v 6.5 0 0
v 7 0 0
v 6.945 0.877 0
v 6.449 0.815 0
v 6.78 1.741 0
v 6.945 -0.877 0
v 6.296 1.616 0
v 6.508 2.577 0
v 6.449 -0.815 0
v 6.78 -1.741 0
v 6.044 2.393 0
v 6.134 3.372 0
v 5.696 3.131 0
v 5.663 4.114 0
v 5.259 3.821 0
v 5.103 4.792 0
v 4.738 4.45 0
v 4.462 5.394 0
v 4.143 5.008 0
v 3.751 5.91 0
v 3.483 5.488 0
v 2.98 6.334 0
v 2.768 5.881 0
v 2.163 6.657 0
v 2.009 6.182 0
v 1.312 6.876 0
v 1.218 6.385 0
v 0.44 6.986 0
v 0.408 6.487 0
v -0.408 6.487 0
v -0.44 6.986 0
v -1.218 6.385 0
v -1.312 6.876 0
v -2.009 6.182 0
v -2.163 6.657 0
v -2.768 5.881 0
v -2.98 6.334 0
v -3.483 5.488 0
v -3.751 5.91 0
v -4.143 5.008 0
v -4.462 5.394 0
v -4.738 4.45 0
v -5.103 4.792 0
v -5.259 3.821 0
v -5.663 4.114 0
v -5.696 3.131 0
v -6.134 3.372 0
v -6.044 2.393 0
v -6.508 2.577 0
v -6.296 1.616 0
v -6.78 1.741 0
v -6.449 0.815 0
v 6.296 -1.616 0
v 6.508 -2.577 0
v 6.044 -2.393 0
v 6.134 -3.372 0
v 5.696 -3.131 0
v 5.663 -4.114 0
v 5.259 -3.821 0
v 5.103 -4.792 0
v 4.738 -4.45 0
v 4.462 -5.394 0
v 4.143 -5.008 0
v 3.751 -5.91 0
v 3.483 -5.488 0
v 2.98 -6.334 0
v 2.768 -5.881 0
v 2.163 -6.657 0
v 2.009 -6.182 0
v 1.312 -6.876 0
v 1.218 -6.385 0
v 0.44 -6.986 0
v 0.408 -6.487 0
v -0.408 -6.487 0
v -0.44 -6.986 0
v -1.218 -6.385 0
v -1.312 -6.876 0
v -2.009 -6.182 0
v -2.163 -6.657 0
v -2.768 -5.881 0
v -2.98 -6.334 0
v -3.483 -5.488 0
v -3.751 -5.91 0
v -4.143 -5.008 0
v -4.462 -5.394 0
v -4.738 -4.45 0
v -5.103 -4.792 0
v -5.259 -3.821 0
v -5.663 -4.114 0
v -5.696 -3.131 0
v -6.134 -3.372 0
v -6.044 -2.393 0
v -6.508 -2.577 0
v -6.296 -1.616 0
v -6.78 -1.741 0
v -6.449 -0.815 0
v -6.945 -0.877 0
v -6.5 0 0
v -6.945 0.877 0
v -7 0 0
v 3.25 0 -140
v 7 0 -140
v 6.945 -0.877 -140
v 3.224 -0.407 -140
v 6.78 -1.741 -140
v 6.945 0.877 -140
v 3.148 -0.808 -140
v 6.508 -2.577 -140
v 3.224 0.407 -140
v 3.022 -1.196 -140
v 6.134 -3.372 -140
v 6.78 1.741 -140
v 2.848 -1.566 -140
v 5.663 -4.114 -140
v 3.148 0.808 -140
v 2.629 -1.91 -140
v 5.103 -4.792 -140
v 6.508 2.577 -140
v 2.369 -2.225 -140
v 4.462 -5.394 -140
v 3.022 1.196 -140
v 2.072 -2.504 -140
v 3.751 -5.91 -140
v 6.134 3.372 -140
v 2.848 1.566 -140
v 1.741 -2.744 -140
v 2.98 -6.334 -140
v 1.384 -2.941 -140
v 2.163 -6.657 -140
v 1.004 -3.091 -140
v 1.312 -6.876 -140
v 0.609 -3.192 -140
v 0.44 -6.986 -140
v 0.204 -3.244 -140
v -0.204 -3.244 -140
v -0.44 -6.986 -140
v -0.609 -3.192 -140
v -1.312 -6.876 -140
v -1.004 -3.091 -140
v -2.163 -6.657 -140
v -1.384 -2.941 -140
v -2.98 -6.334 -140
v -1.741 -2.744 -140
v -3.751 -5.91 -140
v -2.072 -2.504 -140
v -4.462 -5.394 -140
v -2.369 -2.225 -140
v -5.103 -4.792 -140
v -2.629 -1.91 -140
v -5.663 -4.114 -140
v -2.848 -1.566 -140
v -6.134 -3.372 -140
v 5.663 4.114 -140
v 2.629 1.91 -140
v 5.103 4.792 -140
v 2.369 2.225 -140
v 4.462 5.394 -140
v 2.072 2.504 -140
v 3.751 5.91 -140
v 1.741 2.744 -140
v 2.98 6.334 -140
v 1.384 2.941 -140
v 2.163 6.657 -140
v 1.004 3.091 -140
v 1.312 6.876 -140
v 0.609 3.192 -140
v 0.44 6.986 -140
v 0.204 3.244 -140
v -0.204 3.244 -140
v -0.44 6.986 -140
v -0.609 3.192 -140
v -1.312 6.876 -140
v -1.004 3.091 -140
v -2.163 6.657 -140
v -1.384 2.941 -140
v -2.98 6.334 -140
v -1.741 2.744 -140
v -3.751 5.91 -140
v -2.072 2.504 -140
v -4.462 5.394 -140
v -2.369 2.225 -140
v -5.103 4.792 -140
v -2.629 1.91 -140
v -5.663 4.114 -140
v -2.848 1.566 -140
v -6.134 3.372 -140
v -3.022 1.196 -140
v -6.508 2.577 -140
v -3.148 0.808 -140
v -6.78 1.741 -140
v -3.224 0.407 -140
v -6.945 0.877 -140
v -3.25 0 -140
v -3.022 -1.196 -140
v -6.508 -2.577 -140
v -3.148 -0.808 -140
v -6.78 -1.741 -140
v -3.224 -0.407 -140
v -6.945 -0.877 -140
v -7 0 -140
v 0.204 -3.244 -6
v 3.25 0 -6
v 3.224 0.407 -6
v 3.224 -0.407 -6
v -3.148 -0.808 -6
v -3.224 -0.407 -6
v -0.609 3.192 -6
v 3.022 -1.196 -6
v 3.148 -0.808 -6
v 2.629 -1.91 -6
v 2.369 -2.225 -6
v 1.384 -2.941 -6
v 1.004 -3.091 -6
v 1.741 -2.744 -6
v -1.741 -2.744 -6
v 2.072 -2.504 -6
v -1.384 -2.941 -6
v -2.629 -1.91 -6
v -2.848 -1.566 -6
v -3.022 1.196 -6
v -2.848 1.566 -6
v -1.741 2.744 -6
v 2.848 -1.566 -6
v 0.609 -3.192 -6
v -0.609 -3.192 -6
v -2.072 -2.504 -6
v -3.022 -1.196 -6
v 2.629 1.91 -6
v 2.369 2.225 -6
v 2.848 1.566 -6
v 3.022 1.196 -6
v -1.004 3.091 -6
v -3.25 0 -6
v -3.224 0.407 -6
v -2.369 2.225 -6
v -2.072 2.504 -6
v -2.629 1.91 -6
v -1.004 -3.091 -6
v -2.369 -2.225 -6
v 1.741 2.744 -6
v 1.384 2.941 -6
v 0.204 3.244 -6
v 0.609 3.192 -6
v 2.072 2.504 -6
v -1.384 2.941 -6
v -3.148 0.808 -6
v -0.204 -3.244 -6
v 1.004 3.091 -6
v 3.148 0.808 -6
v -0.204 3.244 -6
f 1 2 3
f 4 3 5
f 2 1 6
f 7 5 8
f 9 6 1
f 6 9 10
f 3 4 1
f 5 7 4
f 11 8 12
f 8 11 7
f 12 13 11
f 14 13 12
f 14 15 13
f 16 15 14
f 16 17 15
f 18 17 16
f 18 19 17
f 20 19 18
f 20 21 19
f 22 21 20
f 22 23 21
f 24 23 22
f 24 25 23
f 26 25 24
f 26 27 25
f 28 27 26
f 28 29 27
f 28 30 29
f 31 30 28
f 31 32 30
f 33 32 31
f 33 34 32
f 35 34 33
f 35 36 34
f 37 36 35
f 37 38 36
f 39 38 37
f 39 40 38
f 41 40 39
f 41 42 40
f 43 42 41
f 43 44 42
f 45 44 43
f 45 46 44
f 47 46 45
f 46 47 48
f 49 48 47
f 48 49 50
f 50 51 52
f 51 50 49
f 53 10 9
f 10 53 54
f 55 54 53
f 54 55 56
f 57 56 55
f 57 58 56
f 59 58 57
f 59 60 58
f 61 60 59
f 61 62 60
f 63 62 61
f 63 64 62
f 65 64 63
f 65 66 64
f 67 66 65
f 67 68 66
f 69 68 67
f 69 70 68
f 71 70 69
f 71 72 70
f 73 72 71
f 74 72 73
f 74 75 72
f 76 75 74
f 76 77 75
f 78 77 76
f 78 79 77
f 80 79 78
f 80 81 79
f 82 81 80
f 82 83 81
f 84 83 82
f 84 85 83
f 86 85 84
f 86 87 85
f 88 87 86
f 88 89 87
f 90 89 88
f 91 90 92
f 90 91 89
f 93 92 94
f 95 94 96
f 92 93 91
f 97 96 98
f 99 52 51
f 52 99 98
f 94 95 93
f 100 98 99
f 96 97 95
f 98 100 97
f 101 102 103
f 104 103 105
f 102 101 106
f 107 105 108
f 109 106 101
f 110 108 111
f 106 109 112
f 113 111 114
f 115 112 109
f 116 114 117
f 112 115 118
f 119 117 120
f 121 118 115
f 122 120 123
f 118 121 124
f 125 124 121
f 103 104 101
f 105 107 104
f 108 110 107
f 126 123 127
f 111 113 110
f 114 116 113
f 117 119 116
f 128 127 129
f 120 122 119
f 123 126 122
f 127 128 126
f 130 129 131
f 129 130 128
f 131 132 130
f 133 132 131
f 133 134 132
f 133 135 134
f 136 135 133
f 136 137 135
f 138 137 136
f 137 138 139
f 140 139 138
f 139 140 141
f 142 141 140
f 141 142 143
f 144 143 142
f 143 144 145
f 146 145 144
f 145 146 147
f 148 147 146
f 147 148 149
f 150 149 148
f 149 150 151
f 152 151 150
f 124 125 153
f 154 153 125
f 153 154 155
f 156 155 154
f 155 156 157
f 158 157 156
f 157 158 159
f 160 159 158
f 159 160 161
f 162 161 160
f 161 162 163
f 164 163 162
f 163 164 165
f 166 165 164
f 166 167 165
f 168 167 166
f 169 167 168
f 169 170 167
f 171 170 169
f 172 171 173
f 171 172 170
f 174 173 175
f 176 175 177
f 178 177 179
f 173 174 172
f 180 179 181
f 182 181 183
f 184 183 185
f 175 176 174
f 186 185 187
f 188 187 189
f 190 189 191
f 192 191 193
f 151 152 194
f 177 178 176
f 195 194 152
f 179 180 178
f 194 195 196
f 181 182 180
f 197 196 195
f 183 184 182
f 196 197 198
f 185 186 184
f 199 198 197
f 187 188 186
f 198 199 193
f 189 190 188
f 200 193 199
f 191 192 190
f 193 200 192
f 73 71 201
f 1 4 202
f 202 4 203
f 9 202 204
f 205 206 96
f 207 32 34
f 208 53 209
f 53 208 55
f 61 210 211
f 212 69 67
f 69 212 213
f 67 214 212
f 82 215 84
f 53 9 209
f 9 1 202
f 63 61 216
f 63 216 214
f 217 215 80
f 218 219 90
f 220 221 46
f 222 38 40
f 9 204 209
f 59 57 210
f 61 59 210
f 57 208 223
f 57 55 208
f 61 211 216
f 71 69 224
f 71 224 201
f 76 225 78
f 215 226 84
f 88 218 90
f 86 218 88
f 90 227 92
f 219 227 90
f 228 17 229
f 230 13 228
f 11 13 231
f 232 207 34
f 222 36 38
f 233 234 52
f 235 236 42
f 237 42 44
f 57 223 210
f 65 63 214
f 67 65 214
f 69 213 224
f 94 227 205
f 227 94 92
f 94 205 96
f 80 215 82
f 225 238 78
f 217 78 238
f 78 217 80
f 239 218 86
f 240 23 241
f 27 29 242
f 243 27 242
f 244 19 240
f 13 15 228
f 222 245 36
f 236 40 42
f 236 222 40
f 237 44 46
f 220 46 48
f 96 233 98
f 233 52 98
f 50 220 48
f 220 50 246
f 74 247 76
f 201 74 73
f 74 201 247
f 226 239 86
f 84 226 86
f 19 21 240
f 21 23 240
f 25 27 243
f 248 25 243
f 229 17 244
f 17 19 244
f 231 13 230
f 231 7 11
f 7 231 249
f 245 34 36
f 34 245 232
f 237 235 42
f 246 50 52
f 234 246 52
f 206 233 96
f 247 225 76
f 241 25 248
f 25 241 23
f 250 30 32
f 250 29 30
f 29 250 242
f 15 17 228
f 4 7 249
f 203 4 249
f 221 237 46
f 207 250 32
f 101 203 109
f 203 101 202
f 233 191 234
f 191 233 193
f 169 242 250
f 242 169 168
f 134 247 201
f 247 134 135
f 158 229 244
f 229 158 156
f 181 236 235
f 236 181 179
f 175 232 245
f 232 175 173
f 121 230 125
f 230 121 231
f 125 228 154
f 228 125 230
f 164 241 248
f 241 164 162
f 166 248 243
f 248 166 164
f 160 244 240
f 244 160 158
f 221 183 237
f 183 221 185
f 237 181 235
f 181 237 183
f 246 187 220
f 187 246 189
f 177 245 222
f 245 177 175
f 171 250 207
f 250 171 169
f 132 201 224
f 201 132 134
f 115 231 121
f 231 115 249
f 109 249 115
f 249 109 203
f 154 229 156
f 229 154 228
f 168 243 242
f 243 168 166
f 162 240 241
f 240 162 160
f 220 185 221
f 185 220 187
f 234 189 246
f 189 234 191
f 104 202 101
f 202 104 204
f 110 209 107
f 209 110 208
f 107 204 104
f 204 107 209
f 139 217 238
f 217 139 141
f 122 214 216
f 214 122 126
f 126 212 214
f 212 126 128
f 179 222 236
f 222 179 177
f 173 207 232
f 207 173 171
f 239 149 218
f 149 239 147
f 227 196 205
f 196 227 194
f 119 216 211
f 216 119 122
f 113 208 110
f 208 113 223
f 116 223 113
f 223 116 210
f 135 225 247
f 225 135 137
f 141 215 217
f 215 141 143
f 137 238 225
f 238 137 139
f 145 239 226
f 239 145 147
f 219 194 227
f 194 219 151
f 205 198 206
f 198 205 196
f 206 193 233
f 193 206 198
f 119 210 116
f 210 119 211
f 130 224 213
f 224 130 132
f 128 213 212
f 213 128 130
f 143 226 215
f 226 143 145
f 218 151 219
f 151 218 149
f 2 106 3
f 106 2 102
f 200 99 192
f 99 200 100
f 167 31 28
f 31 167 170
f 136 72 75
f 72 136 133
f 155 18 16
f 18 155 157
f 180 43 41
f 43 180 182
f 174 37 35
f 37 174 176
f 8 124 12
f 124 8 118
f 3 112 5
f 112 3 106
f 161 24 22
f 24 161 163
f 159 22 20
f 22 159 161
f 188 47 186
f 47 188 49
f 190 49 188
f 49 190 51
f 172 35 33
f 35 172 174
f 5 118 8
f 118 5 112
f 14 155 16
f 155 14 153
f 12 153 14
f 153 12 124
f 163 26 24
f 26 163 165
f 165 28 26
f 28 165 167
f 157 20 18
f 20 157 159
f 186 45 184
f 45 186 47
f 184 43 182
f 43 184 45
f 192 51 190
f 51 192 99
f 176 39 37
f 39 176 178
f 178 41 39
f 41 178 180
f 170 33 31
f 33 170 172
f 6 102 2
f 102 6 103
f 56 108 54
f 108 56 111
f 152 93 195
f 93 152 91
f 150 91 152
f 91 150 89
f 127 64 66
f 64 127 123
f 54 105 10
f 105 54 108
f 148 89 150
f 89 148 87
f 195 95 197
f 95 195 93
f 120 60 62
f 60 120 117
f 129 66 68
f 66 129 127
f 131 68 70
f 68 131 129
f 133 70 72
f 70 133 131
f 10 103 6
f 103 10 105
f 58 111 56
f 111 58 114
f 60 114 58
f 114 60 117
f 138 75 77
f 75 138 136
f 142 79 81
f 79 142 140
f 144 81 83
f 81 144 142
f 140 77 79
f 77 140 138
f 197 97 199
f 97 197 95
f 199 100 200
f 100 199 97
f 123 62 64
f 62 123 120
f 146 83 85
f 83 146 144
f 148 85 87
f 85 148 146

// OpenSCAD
$fn = 50;


difference() {
	union() {
		translate(v = [0, 0, -140.0000000000]) {
			cylinder(h = 140, r = 7.0000000000);
		}
		cylinder(h = 0, r = 13.0000000000);
	}
	union() {
		translate(v = [0, 0, 0]) {
			rotate(a = [0, 0, 0]) {
				difference() {
					union() {
						#translate(v = [0, 0, -140.0000000000]) {
							cylinder(h = 140, r = 2.2500000000);
						}
						#translate(v = [0, 0, -6]) {
							cylinder(h = 6, r1 = 3.2500000000, r2 = 6.5000000000);
						}
						#translate(v = [0, 0, -140.0000000000]) {
							cylinder(h = 140, r = 3.2500000000);
						}
						#translate(v = [0, 0, -140.0000000000]) {
							cylinder(h = 140, r = 2.2500000000);
						}
					}
					union();
				}
			}
		}
	}
}
